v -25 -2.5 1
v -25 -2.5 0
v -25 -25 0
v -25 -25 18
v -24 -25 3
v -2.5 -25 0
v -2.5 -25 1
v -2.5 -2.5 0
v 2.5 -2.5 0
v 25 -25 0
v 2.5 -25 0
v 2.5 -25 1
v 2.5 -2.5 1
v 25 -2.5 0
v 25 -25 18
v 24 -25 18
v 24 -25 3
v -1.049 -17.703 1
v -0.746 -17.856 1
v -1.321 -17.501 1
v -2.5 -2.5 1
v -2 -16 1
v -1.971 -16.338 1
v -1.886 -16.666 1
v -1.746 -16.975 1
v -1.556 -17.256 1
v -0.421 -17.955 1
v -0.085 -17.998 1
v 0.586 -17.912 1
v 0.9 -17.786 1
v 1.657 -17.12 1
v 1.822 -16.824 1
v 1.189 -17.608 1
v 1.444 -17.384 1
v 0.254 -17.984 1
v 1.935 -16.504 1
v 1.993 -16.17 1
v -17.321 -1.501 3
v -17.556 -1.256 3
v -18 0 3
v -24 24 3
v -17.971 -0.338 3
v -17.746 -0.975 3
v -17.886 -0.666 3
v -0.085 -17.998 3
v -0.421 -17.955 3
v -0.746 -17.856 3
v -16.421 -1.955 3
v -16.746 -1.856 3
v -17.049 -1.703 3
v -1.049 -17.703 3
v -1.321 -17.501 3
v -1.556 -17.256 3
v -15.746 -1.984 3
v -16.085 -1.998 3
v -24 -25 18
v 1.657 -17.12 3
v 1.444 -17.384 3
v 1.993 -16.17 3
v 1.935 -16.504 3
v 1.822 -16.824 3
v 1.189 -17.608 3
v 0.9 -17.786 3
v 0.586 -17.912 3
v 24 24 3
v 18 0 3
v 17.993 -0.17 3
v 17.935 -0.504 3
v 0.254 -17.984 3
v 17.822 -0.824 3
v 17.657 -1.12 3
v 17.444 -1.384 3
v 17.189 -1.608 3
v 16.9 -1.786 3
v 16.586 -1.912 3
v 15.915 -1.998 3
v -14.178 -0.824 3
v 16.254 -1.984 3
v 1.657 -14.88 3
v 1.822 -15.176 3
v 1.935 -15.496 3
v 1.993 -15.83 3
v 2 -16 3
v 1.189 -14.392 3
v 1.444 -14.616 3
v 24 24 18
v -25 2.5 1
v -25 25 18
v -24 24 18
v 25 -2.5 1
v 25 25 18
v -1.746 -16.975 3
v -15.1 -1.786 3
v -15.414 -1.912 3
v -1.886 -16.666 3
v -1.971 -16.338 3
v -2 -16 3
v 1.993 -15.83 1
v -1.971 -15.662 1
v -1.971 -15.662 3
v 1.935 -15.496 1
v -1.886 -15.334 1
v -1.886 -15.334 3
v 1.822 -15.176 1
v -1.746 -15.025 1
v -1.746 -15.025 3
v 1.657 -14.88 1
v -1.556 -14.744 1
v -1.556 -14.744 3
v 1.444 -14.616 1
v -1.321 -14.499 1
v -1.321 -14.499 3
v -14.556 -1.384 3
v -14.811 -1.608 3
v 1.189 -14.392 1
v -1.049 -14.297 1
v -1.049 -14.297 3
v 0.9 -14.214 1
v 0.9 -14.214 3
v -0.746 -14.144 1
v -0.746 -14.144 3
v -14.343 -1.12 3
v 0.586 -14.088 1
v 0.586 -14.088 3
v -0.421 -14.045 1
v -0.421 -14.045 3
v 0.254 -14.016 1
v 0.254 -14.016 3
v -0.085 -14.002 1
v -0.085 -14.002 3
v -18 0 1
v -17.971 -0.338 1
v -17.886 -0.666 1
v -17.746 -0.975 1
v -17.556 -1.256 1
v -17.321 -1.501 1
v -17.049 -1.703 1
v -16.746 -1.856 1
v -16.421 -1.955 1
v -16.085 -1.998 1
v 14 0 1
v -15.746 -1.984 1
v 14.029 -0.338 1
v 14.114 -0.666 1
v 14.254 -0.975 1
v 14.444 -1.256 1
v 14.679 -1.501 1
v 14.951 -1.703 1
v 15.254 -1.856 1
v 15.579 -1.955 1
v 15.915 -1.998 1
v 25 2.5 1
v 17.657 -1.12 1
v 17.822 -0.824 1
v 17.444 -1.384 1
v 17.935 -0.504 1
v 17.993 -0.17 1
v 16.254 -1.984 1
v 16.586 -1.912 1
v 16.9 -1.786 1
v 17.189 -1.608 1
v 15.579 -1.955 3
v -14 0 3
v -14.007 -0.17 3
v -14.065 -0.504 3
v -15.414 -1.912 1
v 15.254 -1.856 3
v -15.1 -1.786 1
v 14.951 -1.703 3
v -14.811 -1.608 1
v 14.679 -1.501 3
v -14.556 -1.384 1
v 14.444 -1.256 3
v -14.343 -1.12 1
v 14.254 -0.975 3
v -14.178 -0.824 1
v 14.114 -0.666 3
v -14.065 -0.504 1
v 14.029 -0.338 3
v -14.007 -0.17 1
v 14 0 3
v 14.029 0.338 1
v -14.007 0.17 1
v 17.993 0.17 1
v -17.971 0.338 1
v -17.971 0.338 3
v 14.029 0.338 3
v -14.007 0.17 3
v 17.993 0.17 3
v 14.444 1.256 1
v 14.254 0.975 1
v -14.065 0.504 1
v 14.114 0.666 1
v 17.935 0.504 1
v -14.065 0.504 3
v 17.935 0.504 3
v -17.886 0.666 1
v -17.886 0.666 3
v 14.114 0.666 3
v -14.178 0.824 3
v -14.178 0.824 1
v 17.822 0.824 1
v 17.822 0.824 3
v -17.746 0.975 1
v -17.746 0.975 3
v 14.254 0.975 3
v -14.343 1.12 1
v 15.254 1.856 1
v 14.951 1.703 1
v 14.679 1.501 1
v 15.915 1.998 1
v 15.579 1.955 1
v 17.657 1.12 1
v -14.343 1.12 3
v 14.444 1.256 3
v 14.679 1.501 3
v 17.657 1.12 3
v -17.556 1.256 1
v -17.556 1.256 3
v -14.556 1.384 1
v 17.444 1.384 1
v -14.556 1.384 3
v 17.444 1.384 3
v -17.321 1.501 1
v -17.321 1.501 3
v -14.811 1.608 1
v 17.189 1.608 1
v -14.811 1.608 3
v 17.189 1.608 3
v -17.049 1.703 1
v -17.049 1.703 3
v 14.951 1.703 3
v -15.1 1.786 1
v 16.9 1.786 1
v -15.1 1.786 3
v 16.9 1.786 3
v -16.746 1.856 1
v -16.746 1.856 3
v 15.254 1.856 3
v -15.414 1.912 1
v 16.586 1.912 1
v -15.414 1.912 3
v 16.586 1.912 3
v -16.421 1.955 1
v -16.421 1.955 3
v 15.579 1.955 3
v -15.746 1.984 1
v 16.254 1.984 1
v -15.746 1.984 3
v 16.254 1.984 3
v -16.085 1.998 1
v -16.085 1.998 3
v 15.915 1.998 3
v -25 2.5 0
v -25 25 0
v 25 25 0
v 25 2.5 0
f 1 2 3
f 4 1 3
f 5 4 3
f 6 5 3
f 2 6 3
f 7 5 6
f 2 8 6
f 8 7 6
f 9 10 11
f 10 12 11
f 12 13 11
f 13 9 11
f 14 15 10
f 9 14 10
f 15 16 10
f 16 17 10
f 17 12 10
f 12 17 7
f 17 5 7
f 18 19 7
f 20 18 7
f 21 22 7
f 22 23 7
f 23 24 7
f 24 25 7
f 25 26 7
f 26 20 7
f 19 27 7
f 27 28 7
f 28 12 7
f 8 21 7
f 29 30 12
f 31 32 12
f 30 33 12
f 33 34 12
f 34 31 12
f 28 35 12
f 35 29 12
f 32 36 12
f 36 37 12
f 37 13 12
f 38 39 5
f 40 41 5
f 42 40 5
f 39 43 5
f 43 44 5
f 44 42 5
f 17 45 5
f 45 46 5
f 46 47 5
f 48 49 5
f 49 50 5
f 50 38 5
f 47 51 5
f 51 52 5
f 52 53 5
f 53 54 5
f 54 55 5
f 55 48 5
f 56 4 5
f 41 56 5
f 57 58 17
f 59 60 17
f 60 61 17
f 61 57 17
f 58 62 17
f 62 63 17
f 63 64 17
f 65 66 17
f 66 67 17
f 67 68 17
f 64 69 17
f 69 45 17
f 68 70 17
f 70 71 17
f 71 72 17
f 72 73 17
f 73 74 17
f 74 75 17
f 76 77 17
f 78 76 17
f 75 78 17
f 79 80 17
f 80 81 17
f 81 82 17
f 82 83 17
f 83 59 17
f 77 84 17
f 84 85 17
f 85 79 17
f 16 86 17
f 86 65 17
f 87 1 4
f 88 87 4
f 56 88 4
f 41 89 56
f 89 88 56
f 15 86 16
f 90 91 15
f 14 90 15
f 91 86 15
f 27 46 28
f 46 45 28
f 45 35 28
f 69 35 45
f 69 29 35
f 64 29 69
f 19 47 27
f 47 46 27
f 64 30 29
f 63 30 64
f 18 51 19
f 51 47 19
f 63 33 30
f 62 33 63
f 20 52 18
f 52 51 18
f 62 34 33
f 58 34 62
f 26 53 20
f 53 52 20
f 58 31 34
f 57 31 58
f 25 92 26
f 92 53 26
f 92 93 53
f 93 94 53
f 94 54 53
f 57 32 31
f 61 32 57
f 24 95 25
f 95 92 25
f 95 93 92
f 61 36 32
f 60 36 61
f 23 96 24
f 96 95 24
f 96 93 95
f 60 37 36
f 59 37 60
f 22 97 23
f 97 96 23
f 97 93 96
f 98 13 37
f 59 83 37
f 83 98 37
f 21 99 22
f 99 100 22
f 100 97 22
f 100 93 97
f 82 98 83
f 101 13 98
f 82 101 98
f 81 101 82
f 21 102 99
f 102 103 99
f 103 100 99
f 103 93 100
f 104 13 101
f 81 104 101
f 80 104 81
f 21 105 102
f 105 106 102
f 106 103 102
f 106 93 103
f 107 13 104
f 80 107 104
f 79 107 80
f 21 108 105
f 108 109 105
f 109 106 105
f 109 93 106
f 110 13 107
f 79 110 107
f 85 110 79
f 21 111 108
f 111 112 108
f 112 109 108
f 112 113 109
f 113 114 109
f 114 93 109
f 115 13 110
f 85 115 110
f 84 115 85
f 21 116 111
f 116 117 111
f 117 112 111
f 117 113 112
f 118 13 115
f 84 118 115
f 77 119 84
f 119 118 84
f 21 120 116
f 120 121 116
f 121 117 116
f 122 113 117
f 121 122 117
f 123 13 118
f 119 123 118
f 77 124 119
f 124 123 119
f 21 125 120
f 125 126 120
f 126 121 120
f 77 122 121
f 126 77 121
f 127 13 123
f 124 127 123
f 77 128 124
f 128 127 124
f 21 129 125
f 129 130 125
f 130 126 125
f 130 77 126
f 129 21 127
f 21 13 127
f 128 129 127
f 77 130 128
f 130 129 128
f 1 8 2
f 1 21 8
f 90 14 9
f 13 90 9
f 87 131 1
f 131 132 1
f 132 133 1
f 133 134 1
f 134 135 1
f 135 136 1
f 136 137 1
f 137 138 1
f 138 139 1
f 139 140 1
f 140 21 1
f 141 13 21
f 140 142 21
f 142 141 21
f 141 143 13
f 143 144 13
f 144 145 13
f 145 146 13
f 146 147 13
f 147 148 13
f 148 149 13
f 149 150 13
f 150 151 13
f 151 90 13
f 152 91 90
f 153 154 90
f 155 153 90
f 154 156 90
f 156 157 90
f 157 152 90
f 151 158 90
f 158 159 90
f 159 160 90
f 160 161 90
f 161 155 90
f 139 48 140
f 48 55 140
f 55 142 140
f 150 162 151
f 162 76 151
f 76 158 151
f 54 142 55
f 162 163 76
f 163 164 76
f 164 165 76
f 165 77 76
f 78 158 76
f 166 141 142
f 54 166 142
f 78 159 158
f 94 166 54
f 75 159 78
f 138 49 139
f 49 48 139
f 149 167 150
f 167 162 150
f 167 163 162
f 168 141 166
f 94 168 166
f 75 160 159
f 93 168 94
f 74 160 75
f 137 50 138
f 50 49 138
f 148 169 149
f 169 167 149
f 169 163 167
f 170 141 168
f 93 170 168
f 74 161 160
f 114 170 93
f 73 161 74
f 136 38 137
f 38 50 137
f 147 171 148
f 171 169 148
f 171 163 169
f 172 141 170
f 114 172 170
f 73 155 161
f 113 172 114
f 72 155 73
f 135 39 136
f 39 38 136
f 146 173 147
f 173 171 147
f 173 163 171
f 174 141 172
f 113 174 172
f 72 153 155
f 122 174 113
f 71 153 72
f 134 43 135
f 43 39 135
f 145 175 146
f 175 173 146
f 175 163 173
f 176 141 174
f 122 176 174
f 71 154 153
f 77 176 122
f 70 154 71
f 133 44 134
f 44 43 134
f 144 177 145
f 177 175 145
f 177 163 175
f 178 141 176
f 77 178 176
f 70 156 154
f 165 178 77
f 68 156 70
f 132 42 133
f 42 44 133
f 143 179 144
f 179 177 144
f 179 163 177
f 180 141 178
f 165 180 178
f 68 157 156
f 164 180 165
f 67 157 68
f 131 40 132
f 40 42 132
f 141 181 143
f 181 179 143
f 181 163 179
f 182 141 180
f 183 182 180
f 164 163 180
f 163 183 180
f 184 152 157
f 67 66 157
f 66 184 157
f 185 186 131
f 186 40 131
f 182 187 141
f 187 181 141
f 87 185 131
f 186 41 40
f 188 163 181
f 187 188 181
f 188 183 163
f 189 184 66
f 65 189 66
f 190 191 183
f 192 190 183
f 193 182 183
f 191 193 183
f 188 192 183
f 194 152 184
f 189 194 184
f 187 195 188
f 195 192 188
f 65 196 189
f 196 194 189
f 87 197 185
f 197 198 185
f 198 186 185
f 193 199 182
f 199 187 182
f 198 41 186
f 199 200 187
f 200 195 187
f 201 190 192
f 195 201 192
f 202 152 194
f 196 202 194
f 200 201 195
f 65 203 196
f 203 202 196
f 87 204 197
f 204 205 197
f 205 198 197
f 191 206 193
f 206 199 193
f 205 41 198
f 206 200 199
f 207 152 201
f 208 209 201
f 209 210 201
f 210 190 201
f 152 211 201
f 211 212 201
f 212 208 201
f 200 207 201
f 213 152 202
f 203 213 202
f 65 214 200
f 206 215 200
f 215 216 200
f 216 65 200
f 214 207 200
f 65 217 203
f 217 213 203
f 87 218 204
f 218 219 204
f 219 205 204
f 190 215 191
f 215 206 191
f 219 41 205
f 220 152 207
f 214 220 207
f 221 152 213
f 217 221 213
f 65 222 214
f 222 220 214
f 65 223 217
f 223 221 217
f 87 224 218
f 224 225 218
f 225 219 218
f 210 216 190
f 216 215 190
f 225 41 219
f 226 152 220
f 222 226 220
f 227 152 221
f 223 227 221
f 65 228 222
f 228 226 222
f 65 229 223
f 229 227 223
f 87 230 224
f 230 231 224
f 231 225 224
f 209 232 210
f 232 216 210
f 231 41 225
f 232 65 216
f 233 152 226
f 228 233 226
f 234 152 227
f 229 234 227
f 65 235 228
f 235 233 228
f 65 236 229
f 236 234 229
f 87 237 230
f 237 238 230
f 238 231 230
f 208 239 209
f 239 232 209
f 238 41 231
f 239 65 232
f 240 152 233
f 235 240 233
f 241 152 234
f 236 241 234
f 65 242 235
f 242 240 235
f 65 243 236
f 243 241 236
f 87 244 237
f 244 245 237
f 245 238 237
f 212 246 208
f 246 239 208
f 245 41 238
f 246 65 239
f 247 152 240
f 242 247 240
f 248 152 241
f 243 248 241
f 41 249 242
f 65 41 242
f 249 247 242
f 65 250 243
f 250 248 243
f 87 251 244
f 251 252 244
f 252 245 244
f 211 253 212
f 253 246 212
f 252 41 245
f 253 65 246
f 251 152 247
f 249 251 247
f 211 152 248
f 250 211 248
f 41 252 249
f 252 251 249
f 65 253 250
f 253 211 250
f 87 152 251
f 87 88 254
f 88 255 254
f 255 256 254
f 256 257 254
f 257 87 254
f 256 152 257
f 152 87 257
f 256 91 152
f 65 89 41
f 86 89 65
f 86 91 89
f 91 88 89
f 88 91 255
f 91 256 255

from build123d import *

# Parameters (mm, degrees)
SKICA1_W                 = 50
SKICA1_H                 = 50
P_IDAT_VYSUNUT_M2_DEPTH  = 3
SKICA5_W                 = 5
SKICA5_H                 = 22.5
SKICA5_W_2               = 50
SKICA5_H_2               = 5
ODEBRAT_VYSUNUT_M3_DEPTH = 1
P_IDAT_VYSUNUT_M9_DEPTH  = 15
SKICA17_R                = 2
ODEBRAT_VYSUNUT_M8_DEPTH = 4


with BuildPart() as part:
    # Skica1 → Přidat vysunutím2 (new body)
    with BuildSketch(Plane.XY):
        Rectangle(SKICA1_W, SKICA1_H)
    extrude(amount=P_IDAT_VYSUNUT_M2_DEPTH)

    # Skica5 → Odebrat vysunutím3 (cut)
    with BuildSketch(Plane(origin=(0, 0, 0), x_dir=(-1, 0, 0), z_dir=(0, 0, -1))):
        with Locations((0, -13.75)):
            Rectangle(SKICA5_W, SKICA5_H)
        Rectangle(SKICA5_W_2, SKICA5_H_2)
    extrude(amount=-ODEBRAT_VYSUNUT_M3_DEPTH, mode=Mode.SUBTRACT)

    # Skica14 → Přidat vysunutím9 (add)
    with BuildSketch(Plane.XY.offset(3)):
        Polygon((25, 25), (-25, 25), (-25, -25), (-24, -25), (-24, 24), (24, 24), (24, -25), (25, -25), align=None)
    extrude(amount=P_IDAT_VYSUNUT_M9_DEPTH)

    # Skica17 → Odebrat vysunutím8 (cut)
    with BuildSketch(Plane(origin=(0, 0, 1), x_dir=(-1, 0, 0), z_dir=(0, 0, -1))):
        with Locations((-16, 0)):
            Circle(SKICA17_R)
        with Locations((16, 0)):
            Circle(SKICA17_R)
        with Locations((0, -16)):
            Circle(SKICA17_R)
    extrude(amount=-ODEBRAT_VYSUNUT_M8_DEPTH, mode=Mode.SUBTRACT)


solid = part.part
